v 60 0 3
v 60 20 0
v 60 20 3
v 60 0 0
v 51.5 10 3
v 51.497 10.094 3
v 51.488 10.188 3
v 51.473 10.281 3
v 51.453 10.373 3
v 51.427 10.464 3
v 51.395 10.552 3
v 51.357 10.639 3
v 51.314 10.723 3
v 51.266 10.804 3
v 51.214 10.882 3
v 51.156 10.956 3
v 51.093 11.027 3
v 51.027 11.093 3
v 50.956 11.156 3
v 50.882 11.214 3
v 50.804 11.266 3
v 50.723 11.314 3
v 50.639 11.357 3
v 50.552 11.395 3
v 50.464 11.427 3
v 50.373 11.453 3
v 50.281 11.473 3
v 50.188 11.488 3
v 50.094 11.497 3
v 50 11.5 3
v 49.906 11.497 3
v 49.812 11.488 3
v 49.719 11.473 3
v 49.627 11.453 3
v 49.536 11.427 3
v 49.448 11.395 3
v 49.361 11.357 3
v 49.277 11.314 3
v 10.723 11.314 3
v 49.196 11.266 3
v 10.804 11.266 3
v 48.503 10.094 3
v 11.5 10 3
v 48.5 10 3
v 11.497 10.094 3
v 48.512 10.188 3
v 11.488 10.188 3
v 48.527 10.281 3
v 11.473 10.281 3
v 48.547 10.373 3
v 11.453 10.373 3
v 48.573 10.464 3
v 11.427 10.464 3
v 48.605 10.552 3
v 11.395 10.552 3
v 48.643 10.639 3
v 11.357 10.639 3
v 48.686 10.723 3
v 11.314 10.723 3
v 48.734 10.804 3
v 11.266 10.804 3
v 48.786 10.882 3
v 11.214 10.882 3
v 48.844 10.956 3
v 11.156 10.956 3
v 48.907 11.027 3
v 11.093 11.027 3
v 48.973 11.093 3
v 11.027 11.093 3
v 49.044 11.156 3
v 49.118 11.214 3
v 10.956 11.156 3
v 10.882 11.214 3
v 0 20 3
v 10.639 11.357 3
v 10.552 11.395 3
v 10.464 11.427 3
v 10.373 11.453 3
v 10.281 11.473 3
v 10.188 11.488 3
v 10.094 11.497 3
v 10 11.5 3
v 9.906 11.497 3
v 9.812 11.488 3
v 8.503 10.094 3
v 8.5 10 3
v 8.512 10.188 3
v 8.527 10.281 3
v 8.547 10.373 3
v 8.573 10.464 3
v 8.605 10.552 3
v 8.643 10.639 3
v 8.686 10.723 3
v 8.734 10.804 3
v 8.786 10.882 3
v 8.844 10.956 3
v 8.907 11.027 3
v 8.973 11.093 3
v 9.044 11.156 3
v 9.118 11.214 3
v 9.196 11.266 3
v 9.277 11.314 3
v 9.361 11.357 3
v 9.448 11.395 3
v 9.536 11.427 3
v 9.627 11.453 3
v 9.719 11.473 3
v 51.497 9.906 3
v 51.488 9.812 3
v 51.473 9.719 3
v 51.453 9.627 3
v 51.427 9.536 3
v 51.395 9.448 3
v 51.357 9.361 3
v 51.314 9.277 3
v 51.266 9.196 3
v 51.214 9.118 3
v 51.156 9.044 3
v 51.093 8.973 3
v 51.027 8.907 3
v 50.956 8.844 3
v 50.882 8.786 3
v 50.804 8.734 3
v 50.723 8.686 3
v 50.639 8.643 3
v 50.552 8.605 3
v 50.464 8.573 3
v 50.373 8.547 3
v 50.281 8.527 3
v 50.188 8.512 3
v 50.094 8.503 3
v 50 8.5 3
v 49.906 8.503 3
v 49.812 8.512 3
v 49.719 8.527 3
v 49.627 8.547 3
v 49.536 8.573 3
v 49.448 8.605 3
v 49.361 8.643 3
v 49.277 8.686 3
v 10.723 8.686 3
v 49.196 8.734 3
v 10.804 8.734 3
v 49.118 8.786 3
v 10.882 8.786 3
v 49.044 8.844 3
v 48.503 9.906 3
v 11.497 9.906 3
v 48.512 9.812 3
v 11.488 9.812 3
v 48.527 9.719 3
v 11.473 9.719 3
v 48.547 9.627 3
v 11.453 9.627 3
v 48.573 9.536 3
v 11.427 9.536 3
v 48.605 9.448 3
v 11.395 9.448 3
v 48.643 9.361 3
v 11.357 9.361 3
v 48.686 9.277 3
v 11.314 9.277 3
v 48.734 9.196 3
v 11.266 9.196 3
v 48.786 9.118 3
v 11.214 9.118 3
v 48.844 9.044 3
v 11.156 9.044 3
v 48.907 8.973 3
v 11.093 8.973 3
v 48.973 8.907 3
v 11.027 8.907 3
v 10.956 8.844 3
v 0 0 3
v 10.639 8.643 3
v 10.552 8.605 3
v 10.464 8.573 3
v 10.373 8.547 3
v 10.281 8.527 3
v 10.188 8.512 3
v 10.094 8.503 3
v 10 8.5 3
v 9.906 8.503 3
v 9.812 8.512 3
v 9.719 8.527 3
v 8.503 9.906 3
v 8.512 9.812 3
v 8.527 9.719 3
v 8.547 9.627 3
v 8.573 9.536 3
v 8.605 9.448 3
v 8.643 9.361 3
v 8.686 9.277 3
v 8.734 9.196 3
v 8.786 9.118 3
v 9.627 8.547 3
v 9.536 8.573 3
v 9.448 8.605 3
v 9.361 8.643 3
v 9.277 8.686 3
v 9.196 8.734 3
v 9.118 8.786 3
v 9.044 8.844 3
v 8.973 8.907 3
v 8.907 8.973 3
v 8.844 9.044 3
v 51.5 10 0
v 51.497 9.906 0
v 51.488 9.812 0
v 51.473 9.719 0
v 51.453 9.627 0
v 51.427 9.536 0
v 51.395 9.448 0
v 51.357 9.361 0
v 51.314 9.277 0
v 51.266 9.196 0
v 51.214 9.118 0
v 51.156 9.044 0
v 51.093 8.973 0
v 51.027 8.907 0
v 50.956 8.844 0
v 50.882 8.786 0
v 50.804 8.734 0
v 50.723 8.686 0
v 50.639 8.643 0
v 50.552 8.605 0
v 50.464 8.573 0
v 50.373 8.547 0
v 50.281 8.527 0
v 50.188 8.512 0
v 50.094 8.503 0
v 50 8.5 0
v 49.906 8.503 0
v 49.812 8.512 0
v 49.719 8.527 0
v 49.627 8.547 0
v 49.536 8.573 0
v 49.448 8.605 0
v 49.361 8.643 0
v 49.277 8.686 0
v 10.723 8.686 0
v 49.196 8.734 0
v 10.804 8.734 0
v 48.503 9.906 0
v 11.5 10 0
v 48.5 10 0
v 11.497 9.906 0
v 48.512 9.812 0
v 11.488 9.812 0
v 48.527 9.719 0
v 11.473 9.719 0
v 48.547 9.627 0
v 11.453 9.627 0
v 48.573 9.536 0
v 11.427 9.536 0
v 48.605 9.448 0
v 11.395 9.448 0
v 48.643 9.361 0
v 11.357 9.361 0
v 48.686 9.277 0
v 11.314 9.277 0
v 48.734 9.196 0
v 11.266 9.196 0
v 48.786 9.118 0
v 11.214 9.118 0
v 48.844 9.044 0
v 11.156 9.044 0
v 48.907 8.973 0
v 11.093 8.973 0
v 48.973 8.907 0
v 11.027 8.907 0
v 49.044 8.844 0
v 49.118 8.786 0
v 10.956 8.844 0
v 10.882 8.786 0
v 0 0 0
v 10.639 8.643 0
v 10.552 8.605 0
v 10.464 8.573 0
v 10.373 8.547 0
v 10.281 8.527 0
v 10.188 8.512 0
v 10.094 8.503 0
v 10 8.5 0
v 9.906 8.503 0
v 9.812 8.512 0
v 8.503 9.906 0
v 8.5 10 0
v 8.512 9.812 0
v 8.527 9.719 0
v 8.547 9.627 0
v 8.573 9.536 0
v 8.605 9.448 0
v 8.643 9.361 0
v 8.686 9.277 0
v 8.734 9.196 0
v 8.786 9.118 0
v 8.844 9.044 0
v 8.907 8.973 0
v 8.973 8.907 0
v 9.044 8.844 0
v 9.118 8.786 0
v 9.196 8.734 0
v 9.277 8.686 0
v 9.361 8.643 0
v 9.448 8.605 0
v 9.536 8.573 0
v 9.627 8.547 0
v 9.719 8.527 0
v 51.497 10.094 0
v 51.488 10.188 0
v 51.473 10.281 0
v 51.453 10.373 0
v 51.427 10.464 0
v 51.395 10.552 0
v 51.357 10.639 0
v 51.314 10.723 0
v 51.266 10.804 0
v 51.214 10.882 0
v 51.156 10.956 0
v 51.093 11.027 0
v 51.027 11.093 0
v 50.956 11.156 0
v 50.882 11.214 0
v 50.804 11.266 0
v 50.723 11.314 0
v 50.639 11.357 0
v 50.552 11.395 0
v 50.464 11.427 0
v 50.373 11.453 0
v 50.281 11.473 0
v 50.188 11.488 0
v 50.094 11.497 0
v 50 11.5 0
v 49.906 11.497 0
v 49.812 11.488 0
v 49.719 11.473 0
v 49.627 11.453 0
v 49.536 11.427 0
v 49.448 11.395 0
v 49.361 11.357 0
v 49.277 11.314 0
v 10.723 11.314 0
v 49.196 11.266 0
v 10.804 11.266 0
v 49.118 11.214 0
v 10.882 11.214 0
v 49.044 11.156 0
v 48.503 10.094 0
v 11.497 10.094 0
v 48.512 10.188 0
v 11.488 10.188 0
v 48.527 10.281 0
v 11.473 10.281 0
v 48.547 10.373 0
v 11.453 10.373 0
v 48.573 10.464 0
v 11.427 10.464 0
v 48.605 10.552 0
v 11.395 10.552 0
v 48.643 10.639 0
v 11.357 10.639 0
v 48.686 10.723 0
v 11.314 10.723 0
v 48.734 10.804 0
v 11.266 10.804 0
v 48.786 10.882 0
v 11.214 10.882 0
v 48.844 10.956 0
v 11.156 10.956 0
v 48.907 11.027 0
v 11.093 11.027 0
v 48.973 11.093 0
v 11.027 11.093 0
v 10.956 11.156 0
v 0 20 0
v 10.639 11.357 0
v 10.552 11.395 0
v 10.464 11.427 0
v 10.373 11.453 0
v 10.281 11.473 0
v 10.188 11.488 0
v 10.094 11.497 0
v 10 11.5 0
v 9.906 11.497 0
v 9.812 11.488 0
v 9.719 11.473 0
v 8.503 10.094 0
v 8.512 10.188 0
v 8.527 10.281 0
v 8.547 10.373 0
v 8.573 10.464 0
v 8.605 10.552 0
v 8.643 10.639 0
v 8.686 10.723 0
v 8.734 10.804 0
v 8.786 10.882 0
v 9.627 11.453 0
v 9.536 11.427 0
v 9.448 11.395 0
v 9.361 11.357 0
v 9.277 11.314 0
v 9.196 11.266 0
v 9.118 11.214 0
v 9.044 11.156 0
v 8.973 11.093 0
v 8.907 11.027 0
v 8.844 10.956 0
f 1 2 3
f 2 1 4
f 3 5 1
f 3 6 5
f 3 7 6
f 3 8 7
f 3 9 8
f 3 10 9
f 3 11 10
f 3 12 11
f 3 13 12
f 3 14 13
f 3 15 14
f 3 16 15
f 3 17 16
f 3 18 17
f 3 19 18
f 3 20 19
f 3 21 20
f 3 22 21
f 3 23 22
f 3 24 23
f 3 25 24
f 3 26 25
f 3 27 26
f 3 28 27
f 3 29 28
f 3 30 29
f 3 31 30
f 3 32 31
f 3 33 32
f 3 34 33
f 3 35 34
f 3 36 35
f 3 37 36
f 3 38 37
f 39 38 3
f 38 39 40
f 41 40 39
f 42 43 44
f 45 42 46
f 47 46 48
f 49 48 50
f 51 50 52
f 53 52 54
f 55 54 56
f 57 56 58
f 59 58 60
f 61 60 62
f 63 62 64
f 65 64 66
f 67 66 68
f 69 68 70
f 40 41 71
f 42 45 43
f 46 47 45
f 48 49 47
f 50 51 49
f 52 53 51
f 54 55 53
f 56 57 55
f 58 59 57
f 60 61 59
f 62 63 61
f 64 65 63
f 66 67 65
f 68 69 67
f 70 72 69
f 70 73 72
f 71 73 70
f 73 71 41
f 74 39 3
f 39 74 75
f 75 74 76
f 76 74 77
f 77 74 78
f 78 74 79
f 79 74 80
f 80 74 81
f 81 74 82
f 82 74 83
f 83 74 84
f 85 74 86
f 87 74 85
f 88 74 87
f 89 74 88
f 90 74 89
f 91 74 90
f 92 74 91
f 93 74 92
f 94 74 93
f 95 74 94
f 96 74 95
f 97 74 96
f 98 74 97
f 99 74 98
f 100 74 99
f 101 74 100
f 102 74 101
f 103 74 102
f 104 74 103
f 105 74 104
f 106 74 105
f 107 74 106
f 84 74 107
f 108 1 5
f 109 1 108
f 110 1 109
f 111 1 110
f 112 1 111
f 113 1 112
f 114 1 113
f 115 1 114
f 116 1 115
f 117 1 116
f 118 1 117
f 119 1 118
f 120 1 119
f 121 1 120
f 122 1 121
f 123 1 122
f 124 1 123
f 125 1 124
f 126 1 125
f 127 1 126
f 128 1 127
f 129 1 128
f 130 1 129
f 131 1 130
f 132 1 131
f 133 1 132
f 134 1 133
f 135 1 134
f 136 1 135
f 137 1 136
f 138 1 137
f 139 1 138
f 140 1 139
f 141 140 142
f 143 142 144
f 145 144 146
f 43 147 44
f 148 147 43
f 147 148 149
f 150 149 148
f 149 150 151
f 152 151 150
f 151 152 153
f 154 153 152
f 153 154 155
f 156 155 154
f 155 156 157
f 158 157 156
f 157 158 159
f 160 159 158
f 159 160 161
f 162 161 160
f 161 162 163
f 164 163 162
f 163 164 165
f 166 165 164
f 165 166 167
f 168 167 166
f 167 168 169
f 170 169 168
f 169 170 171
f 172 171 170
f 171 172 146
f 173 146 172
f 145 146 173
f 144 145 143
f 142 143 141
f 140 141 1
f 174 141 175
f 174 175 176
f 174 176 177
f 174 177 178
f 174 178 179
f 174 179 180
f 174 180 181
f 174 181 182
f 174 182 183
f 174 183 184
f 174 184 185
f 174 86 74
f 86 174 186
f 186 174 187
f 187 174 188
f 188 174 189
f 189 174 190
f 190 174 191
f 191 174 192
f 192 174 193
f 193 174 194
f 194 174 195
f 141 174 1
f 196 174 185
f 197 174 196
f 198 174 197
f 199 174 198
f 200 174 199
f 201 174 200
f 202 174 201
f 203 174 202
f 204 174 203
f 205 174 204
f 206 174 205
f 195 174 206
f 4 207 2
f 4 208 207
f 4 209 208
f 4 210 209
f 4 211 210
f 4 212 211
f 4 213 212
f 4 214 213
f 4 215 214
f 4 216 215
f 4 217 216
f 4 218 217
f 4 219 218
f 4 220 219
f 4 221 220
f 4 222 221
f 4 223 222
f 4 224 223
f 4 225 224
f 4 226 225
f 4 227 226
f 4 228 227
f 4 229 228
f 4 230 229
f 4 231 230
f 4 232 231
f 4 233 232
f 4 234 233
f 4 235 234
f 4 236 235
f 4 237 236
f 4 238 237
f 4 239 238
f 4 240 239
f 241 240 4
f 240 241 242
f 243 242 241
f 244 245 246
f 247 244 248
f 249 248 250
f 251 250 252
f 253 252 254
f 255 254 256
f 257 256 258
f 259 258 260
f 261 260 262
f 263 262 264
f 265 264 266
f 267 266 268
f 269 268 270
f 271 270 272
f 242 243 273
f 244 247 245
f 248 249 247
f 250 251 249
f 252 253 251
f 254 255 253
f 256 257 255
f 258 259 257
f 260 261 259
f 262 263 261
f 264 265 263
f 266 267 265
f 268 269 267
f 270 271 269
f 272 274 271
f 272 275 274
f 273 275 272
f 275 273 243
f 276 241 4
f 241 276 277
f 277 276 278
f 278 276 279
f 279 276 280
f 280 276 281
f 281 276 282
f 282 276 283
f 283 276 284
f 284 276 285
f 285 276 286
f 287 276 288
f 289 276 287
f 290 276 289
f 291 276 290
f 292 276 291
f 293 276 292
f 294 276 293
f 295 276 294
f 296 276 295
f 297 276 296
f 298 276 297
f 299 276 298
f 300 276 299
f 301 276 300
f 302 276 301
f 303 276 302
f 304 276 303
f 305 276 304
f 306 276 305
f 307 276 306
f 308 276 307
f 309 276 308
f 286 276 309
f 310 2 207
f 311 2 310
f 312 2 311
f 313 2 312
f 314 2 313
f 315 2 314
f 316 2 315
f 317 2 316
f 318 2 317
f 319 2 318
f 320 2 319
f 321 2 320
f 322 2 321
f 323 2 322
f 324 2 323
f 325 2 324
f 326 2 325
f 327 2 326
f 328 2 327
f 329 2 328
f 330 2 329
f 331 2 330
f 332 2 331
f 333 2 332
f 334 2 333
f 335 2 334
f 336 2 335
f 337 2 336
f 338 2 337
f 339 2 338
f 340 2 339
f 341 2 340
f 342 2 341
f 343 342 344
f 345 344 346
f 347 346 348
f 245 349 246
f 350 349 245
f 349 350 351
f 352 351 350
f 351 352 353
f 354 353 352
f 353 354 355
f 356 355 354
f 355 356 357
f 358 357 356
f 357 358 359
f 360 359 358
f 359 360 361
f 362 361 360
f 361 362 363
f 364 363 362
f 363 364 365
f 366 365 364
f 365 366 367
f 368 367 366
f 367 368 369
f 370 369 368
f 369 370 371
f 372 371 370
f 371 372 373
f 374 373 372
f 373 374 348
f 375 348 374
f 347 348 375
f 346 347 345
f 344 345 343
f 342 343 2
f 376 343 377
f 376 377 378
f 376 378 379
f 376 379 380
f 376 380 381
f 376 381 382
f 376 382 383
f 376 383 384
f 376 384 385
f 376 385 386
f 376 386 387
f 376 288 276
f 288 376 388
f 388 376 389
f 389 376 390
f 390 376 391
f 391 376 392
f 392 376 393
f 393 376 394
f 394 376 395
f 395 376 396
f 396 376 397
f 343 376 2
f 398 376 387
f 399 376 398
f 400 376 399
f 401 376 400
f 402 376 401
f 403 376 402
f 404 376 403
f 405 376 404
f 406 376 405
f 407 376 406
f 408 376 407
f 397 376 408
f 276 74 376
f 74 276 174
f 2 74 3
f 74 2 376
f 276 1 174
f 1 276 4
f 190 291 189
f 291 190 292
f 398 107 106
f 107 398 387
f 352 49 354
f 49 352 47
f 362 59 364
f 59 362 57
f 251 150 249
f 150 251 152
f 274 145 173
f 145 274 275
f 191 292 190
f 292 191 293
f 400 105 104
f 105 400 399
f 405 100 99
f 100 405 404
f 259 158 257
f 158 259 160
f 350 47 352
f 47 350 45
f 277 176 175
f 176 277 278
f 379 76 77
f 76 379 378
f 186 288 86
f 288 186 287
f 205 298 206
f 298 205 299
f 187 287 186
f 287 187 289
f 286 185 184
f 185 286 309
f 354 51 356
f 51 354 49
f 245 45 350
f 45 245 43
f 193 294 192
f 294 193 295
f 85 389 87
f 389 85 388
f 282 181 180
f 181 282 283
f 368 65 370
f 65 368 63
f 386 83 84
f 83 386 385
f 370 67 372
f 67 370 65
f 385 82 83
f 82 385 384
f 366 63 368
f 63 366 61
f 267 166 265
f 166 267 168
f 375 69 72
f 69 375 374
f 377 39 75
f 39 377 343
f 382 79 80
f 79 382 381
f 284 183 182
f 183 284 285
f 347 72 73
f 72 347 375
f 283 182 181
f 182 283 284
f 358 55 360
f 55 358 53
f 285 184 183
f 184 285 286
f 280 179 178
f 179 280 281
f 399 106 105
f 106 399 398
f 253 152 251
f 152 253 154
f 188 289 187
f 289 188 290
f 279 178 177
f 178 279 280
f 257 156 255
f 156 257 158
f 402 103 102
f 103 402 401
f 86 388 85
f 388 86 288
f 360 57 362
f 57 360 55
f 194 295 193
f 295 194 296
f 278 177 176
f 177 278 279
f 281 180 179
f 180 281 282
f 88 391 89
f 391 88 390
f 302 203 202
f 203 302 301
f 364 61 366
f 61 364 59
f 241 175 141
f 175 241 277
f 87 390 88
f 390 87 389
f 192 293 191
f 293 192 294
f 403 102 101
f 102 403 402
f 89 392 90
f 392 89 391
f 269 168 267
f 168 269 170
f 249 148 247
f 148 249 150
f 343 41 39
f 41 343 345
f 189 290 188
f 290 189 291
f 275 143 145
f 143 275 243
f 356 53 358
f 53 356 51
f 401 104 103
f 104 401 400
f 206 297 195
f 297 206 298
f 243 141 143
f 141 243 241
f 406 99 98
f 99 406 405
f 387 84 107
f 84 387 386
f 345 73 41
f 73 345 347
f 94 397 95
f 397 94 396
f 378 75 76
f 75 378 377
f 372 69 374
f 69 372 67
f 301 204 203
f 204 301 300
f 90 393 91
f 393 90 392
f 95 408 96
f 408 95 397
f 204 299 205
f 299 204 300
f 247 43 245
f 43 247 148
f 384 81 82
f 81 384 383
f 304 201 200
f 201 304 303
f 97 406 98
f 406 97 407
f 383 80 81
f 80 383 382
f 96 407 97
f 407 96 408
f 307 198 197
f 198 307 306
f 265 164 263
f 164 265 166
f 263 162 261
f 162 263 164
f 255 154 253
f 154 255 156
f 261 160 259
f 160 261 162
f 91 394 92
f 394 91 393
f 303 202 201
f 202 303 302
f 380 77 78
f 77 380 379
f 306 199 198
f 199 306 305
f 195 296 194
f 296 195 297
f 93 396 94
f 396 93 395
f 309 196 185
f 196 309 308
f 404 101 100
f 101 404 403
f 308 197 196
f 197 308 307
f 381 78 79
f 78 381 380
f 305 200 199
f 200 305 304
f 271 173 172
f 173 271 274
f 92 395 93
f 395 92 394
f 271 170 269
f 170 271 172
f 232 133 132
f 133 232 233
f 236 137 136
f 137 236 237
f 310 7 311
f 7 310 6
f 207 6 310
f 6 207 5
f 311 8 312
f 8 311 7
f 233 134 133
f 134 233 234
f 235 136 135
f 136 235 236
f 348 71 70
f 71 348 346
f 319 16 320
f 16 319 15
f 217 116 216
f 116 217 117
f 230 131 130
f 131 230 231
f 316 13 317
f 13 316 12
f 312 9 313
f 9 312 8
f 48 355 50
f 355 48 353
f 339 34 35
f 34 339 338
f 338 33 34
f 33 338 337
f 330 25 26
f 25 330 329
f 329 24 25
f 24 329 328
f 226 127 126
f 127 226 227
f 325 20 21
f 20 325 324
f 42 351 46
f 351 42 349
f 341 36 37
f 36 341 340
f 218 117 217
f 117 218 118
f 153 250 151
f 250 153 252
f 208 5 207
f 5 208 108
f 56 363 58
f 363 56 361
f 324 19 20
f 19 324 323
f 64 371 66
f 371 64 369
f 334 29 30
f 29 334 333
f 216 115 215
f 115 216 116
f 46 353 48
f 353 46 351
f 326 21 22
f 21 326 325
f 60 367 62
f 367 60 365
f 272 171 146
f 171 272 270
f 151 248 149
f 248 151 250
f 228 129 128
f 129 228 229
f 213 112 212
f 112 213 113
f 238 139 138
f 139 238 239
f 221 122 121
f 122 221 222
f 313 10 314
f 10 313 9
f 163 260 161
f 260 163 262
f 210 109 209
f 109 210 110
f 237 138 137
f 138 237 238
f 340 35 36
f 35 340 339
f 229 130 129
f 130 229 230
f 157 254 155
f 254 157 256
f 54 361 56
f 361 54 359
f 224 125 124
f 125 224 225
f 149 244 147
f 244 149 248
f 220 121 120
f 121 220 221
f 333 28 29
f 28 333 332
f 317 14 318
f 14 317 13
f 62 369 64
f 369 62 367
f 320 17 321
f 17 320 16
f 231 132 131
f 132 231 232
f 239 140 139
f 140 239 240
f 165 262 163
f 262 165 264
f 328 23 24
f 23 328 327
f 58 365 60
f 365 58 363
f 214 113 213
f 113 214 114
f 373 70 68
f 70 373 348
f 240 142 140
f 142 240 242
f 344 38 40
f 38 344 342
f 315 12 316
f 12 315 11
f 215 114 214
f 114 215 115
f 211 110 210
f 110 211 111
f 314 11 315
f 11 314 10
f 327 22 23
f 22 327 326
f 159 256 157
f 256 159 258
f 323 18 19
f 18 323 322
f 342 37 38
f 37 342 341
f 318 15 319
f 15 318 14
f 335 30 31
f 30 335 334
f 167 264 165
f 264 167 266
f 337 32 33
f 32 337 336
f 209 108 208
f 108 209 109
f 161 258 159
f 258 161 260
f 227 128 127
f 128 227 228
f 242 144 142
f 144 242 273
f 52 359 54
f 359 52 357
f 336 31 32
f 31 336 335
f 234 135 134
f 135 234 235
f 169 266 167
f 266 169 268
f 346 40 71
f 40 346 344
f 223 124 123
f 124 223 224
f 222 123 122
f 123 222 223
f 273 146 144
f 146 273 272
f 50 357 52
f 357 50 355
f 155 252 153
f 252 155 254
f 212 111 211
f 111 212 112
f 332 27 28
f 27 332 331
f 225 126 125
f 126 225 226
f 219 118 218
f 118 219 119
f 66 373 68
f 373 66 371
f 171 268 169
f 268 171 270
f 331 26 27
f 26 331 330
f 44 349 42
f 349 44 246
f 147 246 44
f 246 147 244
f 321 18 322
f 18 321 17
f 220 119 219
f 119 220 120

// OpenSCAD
difference() {
union() {

    translate([0, 0, 0])
        cube([60, 20, 3]);

}

    translate([10,10,-1]){
        rotate([0,0,0]){
            cylinder(h=500, r=1.5, $fn=100, center=false);
        }
    }
    translate([50,10,-1]){
        rotate([0,0,0]){
            cylinder(h=500, r=1.5, $fn=100, center=false);
        }
    }





}
